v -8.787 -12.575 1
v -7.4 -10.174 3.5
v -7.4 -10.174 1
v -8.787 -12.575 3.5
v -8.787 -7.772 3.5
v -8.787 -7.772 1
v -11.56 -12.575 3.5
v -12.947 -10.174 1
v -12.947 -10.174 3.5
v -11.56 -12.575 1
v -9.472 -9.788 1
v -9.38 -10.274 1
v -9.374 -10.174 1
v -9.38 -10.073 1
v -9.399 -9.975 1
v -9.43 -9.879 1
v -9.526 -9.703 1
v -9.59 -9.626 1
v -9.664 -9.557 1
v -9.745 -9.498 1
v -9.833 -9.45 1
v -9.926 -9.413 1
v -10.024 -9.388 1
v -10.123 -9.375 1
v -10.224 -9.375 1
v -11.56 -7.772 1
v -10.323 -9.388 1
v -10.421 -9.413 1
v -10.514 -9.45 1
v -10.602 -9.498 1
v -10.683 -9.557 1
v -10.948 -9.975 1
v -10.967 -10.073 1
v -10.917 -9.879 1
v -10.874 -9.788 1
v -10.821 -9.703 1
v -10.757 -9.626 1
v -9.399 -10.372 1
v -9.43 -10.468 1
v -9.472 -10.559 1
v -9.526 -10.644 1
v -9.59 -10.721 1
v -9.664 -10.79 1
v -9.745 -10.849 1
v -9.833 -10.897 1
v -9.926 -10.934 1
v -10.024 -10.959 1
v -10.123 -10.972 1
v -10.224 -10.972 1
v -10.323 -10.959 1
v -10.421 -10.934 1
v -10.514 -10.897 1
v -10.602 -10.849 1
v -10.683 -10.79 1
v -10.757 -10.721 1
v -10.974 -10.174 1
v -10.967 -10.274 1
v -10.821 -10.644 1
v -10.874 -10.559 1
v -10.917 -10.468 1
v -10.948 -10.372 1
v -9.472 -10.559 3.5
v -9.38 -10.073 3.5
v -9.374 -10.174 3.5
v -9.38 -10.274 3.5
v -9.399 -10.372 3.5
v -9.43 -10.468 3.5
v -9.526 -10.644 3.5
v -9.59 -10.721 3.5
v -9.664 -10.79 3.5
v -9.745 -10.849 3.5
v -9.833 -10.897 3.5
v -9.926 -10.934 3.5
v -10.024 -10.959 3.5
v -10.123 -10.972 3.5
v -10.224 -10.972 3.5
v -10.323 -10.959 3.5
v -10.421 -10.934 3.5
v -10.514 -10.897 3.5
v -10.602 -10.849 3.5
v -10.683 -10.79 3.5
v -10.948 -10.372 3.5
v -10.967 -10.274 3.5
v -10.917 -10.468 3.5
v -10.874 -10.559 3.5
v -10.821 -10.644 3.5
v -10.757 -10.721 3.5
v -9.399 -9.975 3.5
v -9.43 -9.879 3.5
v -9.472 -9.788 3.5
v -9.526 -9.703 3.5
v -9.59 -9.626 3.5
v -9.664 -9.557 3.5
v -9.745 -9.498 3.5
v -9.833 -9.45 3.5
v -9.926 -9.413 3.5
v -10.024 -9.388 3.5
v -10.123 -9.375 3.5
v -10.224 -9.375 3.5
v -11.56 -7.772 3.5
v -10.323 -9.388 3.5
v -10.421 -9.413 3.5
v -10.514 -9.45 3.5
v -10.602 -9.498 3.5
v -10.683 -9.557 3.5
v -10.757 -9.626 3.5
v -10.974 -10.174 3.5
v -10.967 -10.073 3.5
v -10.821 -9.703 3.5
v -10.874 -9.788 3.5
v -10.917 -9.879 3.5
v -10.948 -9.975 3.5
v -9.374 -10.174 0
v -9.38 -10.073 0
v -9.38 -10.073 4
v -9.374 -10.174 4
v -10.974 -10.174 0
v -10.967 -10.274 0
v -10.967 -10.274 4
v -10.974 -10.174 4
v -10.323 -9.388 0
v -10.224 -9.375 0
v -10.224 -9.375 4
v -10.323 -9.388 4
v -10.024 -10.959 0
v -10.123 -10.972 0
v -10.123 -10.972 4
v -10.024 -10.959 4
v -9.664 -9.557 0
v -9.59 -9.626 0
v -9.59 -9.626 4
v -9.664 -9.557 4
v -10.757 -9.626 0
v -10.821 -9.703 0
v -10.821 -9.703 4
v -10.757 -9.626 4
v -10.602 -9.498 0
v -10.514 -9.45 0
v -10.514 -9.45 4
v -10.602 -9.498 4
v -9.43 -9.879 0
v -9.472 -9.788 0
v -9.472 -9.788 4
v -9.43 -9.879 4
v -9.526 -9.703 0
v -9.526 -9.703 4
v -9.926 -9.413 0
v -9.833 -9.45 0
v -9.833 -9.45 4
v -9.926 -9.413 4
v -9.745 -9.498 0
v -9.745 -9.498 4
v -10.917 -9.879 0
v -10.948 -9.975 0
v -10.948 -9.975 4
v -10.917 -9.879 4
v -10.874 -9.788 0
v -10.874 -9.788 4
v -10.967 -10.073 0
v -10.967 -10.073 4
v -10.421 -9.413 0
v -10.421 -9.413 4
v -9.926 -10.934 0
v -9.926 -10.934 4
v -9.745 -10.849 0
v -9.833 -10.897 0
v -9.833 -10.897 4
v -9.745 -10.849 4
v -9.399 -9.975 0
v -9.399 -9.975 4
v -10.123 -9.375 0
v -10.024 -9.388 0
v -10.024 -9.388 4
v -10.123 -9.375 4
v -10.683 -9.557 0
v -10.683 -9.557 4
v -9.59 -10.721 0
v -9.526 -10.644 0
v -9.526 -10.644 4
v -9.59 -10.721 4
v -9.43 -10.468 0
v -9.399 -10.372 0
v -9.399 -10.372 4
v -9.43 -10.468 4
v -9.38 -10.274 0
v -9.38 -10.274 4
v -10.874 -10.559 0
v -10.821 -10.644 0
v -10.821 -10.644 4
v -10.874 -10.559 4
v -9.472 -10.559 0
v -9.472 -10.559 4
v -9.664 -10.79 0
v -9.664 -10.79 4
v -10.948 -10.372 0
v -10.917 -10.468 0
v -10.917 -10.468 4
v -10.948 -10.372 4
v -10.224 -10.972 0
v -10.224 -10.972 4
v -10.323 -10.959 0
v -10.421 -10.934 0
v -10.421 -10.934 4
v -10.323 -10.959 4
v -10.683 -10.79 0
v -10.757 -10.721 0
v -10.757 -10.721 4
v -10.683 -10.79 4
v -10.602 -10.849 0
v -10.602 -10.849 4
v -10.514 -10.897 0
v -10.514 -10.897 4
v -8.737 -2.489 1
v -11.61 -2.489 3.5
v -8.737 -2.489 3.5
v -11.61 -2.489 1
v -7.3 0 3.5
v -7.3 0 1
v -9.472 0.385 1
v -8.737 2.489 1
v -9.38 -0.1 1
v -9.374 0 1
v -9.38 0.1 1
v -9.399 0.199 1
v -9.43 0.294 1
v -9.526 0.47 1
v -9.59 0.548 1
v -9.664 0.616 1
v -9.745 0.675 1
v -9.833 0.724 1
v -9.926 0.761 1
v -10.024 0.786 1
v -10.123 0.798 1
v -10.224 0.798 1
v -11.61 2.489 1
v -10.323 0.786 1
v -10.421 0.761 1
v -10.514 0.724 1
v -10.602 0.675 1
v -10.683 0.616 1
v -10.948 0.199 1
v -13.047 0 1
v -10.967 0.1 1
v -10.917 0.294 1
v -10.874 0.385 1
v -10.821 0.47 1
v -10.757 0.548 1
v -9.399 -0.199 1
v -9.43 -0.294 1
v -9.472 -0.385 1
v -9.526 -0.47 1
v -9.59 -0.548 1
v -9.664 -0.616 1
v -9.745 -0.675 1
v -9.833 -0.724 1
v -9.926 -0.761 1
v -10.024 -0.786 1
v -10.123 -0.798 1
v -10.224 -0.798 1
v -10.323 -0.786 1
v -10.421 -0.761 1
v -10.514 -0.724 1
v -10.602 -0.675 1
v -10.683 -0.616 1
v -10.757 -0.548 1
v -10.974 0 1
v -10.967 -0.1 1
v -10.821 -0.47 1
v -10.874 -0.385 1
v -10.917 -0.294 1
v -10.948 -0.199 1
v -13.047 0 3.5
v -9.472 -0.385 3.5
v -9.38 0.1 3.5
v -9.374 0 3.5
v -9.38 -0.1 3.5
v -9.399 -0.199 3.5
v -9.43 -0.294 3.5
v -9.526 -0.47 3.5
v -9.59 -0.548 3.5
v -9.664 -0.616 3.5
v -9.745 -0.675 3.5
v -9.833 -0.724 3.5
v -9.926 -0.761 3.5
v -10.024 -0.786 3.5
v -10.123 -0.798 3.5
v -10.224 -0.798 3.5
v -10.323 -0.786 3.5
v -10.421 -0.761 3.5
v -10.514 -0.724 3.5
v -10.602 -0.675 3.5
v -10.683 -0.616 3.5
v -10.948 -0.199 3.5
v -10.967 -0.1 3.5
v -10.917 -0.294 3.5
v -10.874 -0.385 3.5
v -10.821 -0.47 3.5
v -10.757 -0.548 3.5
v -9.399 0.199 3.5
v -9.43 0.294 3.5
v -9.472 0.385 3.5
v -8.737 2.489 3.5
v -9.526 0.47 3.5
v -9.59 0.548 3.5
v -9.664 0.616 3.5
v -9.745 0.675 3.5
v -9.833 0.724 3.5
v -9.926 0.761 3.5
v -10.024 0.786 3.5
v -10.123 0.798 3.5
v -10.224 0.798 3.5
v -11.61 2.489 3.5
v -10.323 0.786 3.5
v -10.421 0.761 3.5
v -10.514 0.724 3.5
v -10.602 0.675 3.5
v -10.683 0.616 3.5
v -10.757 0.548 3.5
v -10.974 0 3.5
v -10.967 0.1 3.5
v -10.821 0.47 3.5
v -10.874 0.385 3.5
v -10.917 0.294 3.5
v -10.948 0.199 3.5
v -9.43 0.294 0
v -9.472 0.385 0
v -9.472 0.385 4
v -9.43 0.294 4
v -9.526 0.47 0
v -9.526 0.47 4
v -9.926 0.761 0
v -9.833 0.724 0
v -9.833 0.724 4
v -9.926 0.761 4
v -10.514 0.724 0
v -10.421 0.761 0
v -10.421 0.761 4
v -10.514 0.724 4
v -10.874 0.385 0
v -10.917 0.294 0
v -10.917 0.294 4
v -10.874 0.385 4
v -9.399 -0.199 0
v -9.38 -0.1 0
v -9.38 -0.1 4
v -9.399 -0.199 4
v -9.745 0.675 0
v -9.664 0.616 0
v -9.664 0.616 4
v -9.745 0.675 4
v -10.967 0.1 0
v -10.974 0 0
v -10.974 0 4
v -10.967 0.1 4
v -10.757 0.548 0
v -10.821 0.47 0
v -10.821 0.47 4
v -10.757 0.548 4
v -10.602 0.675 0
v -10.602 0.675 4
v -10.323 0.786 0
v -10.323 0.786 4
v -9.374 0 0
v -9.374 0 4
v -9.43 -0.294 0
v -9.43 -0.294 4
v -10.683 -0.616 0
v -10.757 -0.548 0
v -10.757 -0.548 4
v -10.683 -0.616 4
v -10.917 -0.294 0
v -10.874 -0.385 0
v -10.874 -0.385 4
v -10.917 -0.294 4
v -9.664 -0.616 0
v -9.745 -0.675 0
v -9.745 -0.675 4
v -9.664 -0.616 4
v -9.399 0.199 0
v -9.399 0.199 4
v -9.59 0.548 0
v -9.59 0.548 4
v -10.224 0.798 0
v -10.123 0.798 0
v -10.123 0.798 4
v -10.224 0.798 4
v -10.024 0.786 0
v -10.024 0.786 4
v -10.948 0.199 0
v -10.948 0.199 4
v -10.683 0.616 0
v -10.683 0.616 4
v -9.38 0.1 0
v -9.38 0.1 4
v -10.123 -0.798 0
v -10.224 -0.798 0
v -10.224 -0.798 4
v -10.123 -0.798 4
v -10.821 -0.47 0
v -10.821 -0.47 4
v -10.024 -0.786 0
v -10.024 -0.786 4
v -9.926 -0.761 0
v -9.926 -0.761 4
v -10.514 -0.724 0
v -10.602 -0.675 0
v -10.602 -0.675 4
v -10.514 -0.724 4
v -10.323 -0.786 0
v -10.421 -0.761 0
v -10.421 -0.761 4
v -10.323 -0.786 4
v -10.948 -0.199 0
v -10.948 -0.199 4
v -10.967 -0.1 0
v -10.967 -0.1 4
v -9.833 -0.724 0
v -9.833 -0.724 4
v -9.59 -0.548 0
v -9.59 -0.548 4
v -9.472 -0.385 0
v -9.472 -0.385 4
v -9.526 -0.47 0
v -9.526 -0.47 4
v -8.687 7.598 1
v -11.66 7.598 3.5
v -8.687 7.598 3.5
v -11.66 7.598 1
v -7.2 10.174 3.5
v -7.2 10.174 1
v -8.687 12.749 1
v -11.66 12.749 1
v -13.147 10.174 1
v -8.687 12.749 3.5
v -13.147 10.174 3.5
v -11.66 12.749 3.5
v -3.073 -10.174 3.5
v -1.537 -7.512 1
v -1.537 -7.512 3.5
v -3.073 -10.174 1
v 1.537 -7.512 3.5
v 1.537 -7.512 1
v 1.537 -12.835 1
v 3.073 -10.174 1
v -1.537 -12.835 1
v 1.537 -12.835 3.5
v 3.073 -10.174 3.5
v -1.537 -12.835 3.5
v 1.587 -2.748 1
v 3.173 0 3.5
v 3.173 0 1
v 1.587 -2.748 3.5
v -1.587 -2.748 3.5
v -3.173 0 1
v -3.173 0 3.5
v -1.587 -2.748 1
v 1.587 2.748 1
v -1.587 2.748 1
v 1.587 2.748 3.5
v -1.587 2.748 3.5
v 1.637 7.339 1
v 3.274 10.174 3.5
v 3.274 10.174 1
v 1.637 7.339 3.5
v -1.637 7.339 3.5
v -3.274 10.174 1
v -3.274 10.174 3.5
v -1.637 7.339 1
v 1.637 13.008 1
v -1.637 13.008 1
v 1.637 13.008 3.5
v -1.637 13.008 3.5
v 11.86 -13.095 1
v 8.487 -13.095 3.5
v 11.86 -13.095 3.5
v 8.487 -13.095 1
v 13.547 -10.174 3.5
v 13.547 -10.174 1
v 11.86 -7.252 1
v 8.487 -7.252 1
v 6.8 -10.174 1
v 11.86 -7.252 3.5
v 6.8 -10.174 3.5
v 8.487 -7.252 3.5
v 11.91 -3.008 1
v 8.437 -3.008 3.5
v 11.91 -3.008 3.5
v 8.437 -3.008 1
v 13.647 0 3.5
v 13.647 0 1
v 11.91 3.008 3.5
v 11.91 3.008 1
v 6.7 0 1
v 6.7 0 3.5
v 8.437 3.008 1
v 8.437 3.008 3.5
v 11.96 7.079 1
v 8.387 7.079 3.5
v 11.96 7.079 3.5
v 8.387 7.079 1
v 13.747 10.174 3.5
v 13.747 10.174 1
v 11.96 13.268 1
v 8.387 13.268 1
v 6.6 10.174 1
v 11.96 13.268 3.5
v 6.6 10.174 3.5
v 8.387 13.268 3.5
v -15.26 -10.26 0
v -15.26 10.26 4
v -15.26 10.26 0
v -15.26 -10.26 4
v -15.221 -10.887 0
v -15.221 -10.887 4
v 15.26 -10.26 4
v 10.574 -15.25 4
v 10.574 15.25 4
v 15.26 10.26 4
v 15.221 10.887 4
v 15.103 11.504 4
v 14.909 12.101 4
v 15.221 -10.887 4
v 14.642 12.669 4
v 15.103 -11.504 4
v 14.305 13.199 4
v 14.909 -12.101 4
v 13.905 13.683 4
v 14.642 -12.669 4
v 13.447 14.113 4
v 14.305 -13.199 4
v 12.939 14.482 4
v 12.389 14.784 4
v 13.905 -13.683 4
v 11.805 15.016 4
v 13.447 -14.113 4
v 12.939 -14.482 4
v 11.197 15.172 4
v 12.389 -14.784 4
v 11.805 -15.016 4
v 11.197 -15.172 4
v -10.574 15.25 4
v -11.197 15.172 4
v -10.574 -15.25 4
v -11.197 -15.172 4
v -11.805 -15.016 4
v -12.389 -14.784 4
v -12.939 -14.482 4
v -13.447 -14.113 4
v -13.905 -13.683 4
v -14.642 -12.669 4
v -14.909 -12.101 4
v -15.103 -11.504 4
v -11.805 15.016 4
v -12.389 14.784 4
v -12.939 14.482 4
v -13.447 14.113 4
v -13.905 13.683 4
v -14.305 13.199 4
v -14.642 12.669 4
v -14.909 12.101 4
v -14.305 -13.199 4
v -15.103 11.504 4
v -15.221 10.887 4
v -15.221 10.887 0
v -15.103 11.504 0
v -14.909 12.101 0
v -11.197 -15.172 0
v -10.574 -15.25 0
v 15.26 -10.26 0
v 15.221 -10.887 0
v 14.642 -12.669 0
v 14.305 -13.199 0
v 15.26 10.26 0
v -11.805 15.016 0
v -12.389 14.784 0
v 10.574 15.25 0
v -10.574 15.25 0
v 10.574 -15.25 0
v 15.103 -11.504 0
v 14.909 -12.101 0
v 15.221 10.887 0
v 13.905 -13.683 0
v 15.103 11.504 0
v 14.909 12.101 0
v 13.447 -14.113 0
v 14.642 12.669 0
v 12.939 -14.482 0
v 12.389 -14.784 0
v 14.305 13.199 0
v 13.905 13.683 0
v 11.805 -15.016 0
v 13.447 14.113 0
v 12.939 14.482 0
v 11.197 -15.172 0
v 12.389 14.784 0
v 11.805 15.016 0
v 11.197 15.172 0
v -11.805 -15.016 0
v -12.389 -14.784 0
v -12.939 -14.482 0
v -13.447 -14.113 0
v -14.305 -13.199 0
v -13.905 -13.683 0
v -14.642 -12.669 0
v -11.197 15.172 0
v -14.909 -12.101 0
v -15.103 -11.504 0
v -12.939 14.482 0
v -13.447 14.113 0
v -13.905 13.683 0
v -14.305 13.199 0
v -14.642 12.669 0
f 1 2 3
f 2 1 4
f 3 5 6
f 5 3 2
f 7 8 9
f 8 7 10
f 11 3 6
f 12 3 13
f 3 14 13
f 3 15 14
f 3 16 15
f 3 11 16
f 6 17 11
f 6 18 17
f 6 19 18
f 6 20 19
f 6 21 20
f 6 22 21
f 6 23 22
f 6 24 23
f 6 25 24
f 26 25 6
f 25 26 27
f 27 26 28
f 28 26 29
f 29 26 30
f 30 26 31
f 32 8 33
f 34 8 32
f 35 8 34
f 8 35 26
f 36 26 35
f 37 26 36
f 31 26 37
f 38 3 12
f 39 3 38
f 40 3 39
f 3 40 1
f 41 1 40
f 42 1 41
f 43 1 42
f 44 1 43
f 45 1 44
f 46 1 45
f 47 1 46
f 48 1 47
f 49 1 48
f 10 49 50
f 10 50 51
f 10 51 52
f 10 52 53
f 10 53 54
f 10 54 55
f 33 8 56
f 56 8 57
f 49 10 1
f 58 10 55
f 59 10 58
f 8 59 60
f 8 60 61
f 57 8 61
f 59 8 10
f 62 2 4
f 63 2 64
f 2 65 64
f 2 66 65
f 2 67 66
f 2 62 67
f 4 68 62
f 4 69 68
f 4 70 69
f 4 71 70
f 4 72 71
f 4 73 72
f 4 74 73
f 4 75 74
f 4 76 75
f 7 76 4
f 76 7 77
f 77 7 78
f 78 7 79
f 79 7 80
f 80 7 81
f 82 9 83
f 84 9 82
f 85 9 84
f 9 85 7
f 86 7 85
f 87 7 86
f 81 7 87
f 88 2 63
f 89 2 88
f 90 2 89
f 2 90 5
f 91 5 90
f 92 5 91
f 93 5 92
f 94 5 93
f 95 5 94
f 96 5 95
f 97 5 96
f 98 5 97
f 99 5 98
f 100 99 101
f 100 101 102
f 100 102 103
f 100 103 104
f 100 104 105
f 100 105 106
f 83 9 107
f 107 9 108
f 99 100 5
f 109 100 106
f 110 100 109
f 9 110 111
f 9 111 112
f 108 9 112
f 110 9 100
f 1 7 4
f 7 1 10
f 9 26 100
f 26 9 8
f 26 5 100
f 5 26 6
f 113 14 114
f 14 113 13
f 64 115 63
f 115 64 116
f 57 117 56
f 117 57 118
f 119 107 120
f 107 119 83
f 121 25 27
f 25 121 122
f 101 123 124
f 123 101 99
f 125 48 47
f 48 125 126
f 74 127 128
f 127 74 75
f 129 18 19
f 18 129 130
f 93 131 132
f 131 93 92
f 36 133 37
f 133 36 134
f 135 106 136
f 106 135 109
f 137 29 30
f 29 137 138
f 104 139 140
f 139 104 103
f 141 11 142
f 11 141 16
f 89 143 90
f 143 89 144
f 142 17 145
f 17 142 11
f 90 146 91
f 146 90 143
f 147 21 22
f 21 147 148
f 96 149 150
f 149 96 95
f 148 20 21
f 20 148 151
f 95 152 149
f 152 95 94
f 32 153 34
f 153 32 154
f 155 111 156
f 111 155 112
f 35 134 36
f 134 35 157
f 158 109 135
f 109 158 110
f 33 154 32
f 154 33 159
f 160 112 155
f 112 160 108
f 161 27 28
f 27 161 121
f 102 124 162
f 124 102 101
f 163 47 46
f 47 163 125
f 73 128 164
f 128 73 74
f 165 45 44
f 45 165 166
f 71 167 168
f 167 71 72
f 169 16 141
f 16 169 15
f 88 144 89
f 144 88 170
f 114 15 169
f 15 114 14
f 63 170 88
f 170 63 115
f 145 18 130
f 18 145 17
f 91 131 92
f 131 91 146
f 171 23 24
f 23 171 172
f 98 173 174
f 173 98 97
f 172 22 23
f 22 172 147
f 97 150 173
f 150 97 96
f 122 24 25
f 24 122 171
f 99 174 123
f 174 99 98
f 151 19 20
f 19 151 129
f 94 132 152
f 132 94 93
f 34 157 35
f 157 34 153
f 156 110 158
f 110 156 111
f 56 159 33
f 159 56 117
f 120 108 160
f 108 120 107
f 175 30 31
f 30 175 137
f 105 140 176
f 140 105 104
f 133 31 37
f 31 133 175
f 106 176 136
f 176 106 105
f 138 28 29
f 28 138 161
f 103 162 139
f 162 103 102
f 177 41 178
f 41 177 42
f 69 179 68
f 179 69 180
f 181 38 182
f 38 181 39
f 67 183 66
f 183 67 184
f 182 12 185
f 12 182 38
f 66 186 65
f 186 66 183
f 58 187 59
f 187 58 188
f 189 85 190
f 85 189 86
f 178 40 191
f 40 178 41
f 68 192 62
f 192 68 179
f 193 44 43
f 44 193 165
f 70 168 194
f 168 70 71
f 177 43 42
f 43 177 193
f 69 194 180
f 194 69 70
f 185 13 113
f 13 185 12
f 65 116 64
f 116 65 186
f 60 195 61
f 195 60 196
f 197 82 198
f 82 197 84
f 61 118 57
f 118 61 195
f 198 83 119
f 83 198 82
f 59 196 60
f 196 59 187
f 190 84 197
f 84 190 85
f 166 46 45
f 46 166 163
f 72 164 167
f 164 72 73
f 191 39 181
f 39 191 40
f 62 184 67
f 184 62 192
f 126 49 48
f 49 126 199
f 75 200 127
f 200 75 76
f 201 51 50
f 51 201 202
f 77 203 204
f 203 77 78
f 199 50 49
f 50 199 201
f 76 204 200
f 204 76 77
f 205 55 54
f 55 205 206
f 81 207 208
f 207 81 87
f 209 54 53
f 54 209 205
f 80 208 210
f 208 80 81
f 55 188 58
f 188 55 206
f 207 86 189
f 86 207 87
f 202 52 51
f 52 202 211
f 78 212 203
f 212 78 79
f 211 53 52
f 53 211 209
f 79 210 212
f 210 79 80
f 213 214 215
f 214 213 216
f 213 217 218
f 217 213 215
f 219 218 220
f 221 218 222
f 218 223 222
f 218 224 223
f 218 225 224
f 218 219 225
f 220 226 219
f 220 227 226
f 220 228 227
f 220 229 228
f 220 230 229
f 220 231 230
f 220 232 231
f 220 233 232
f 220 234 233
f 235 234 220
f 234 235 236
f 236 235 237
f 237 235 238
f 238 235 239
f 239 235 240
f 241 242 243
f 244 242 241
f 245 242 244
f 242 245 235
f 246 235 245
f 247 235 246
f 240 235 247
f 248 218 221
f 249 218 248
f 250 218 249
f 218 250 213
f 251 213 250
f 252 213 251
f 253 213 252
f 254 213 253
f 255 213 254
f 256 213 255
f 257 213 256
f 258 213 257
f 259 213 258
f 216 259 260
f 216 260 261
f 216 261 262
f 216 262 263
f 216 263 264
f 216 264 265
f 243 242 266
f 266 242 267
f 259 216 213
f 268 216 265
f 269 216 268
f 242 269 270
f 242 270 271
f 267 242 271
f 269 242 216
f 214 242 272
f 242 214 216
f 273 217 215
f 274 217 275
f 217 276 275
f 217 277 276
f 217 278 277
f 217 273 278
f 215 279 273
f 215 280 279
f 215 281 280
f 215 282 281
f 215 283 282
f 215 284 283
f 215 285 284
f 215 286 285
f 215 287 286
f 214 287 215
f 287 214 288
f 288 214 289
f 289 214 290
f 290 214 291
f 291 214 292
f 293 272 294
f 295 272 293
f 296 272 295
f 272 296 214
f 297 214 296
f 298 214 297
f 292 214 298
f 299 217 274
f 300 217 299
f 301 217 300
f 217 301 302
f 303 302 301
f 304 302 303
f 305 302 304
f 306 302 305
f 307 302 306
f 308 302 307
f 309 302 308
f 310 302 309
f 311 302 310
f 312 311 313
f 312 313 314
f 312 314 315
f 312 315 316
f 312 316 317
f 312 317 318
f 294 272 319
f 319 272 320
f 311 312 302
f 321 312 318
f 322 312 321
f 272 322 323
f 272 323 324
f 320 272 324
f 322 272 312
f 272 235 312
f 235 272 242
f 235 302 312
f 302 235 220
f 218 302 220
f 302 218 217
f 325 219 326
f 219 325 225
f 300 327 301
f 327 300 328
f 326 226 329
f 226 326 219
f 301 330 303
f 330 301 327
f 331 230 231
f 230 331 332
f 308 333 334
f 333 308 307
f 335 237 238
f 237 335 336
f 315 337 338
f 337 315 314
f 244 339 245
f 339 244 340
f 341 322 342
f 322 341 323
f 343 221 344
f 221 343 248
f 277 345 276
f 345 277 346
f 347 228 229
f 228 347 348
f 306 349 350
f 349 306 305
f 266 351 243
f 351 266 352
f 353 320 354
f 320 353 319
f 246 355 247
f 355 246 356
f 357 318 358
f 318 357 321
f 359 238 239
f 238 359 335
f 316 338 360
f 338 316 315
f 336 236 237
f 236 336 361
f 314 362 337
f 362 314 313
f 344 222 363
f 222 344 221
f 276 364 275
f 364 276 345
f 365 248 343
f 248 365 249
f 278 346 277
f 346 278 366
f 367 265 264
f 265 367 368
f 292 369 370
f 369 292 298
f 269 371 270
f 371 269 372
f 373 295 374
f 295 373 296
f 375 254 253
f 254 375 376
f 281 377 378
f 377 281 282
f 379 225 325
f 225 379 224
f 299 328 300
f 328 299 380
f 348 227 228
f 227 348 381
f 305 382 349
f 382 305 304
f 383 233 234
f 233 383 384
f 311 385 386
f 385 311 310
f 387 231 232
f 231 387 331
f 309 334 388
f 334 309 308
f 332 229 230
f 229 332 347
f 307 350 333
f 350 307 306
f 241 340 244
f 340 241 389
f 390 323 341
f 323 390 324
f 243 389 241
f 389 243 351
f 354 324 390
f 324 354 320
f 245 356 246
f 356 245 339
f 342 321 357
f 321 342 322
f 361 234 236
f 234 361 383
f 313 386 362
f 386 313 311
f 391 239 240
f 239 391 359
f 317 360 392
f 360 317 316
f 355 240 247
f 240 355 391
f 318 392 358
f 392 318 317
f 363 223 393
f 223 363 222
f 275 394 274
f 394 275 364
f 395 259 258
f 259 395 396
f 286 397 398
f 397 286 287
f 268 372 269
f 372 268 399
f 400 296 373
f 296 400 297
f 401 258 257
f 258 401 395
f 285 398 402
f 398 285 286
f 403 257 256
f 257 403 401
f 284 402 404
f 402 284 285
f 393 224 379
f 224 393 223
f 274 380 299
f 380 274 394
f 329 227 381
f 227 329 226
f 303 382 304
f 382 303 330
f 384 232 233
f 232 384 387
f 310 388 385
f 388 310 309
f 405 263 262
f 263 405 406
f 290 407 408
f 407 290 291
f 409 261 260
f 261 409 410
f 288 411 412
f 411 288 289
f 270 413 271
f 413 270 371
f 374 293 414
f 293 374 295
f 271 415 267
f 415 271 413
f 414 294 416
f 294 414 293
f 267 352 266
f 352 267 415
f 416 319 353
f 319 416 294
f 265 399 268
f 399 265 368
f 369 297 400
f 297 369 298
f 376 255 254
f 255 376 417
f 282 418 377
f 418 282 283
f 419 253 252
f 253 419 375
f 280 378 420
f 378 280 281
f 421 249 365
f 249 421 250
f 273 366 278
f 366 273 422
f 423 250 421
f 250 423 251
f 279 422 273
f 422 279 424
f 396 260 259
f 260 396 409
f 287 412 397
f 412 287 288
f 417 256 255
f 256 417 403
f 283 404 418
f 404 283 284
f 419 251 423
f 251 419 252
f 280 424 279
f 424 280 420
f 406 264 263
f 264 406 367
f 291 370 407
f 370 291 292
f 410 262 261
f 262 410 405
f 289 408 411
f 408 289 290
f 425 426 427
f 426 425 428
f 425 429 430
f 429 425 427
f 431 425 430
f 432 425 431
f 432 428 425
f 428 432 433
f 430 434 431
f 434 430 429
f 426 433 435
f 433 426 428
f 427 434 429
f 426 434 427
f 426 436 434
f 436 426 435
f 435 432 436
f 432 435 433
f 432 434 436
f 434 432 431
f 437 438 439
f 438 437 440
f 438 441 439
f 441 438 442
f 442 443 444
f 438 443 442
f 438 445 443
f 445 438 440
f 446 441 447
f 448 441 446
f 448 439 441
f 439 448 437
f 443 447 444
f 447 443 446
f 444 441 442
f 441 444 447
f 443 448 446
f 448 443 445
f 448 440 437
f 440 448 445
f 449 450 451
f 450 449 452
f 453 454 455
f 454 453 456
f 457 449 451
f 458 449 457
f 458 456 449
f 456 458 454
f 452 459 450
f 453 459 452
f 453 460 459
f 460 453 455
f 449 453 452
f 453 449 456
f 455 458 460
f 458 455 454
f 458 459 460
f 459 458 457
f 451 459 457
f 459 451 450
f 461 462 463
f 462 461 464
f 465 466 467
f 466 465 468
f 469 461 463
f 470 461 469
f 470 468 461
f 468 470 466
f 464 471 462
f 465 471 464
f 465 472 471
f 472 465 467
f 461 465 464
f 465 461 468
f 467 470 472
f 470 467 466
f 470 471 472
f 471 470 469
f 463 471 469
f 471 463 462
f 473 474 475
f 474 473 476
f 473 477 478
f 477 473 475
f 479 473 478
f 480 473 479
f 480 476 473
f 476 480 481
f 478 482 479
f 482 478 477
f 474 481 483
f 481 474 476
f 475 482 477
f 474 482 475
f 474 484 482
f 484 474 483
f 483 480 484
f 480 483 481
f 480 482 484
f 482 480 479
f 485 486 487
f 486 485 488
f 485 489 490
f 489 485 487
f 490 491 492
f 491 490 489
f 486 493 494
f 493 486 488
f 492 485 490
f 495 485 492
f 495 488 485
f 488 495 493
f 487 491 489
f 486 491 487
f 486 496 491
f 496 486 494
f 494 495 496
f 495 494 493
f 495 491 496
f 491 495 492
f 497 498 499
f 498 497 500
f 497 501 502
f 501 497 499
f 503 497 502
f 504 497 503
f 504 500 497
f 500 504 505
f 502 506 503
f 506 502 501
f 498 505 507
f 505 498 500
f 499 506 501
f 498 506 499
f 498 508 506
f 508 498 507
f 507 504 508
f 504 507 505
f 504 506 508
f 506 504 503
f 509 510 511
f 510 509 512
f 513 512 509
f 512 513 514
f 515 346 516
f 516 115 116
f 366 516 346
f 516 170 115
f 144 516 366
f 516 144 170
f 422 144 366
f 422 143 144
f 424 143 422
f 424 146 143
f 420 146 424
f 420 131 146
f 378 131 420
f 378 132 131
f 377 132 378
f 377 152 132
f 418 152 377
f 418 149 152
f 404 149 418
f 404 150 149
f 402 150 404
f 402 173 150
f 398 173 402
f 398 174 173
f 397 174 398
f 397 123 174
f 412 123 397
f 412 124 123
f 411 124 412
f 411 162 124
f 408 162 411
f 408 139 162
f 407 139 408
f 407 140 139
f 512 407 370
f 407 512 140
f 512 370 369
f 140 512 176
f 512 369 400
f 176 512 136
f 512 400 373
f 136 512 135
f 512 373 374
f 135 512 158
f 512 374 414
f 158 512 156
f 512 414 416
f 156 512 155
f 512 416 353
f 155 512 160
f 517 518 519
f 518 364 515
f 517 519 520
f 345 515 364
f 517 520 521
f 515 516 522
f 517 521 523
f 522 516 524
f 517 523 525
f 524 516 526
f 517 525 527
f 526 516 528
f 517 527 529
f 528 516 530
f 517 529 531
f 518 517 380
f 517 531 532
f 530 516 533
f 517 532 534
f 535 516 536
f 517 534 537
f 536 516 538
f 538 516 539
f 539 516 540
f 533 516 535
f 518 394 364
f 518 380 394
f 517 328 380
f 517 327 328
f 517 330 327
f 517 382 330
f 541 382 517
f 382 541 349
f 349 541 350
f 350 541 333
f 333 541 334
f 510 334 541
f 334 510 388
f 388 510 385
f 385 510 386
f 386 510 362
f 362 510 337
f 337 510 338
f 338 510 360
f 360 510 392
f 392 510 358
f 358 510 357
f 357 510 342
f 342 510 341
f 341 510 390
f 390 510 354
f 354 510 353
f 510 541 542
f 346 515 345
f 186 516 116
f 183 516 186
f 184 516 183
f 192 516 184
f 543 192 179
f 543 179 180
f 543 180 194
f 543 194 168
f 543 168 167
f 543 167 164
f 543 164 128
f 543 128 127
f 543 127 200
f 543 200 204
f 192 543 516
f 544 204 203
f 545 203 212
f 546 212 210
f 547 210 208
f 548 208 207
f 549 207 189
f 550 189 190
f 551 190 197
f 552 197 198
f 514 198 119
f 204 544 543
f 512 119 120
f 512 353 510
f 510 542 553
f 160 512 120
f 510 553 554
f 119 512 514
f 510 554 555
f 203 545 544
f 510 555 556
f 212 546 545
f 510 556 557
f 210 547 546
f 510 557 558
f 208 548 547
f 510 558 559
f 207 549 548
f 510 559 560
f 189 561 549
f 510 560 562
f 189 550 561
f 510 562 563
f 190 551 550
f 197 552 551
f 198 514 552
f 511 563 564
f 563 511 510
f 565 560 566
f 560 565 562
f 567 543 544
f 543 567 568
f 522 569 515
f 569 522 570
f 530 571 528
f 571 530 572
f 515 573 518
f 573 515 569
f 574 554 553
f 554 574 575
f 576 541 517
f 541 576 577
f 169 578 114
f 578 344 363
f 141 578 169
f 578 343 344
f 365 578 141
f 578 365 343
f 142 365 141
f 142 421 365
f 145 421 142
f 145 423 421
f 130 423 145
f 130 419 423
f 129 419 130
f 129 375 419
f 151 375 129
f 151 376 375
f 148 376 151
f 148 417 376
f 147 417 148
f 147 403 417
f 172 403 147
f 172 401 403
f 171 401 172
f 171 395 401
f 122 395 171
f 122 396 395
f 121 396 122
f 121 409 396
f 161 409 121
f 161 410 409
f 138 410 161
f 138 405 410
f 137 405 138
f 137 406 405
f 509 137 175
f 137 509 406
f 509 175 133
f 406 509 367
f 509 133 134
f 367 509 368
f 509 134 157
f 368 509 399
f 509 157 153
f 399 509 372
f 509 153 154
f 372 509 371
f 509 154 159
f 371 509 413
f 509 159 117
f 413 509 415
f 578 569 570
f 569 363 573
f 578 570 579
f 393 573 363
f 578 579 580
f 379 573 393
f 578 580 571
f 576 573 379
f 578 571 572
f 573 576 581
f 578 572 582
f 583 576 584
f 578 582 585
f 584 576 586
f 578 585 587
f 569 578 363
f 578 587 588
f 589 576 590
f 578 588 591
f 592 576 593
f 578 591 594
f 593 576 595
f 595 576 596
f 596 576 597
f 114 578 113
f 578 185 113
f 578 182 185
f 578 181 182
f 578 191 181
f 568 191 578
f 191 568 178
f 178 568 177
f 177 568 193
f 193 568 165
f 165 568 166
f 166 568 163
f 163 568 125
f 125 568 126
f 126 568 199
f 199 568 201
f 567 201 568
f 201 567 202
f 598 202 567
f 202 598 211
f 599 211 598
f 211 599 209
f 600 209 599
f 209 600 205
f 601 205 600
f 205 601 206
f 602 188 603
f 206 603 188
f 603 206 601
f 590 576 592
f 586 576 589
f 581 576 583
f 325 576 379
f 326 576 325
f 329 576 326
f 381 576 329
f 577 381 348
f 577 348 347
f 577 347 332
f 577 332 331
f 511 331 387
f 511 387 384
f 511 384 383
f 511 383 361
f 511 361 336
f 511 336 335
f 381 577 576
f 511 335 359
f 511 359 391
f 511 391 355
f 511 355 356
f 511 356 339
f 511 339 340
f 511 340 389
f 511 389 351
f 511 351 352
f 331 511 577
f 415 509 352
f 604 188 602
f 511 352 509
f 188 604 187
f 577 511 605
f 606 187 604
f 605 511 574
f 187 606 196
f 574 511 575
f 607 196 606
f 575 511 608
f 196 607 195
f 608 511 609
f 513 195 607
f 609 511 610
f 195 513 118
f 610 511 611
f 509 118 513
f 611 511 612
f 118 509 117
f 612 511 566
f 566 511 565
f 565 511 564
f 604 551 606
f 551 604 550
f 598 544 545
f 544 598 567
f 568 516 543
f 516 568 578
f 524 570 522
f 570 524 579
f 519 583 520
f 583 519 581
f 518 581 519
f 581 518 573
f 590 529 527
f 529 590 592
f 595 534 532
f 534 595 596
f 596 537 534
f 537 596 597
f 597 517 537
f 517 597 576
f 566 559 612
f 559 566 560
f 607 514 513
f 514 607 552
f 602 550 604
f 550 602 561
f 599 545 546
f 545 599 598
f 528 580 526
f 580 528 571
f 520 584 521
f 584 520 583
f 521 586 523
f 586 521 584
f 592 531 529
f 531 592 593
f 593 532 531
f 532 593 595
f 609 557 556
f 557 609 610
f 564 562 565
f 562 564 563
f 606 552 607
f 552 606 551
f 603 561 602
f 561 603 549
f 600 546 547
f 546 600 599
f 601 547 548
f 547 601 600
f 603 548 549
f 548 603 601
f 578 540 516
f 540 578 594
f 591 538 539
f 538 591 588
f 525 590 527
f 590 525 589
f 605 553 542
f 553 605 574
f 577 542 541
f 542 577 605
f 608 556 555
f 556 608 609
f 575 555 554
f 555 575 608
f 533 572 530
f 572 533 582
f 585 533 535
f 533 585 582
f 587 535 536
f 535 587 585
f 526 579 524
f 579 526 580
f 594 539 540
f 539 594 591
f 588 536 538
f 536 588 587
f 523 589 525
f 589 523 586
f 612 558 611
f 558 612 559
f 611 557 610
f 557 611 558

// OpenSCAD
$fn = 50;


difference() {
	union() {
		translate(v = [0, 0, 0]) {
			rotate(a = [0, 0, 0]) {
				hull() {
					translate(v = [-10.2602500000, 10.2602500000, 0]) {
						rotate(a = [0, 0, 0]) {
							translate(v = [0, 0, 0]) {
								rotate(a = [0, 0, 0]) {
									cylinder(h = 4, r = 5);
								}
							}
						}
					}
					translate(v = [10.2602500000, 10.2602500000, 0]) {
						rotate(a = [0, 0, 0]) {
							translate(v = [0, 0, 0]) {
								rotate(a = [0, 0, 0]) {
									cylinder(h = 4, r = 5);
								}
							}
						}
					}
					translate(v = [-10.2602500000, -10.2602500000, 0]) {
						rotate(a = [0, 0, 0]) {
							translate(v = [0, 0, 0]) {
								rotate(a = [0, 0, 0]) {
									cylinder(h = 4, r = 5);
								}
							}
						}
					}
					translate(v = [10.2602500000, -10.2602500000, 0]) {
						rotate(a = [0, 0, 0]) {
							translate(v = [0, 0, 0]) {
								rotate(a = [0, 0, 0]) {
									cylinder(h = 4, r = 5);
								}
							}
						}
					}
				}
			}
		}
	}
	union() {
		translate(v = [-10.1735000000, -10.1735000000, 1]) {
			rotate(a = [0, 0, 0]) {
				translate(v = [0, 0, 0]) {
					rotate(a = [0, 0, 0]) {
						linear_extrude(height = 2.5000000000) {
							polygon(points = [[2.7735000000, 0.0000000000], [1.3867500000, 2.4019214574], [-1.3867500000, 2.4019214574], [-2.7735000000, 0.0000000000], [-1.3867500000, -2.4019214574], [1.3867500000, -2.4019214574]]);
						}
					}
				}
			}
		}
		translate(v = [-10.1735000000, -10.1735000000, -125]) {
			rotate(a = [0, 0, 0]) {
				cylinder(h = 250, r = 0.8000000000);
			}
		}
		translate(v = [-10.1735000000, 0.0000000000, 1]) {
			rotate(a = [0, 0, 0]) {
				translate(v = [0, 0, 0]) {
					rotate(a = [0, 0, 0]) {
						linear_extrude(height = 2.5000000000) {
							polygon(points = [[2.8735000000, 0.0000000000], [1.4367500000, 2.4885239978], [-1.4367500000, 2.4885239978], [-2.8735000000, 0.0000000000], [-1.4367500000, -2.4885239978], [1.4367500000, -2.4885239978]]);
						}
					}
				}
			}
		}
		translate(v = [-10.1735000000, 0.0000000000, -125]) {
			rotate(a = [0, 0, 0]) {
				cylinder(h = 250, r = 0.8000000000);
			}
		}
		translate(v = [-10.1735000000, 10.1735000000, 1]) {
			rotate(a = [0, 0, 0]) {
				translate(v = [0, 0, 0]) {
					rotate(a = [0, 0, 0]) {
						linear_extrude(height = 2.5000000000) {
							polygon(points = [[2.9735000000, 0.0000000000], [1.4867500000, 2.5751265382], [-1.4867500000, 2.5751265382], [-2.9735000000, 0.0000000000], [-1.4867500000, -2.5751265382], [1.4867500000, -2.5751265382]]);
						}
					}
				}
			}
		}
		translate(v = [0.0000000000, -10.1735000000, 1]) {
			rotate(a = [0, 0, 0]) {
				translate(v = [0, 0, 0]) {
					rotate(a = [0, 0, 0]) {
						linear_extrude(height = 2.5000000000) {
							polygon(points = [[3.0735000000, 0.0000000000], [1.5367500000, 2.6617290785], [-1.5367500000, 2.6617290785], [-3.0735000000, 0.0000000000], [-1.5367500000, -2.6617290785], [1.5367500000, -2.6617290785]]);
						}
					}
				}
			}
		}
		translate(v = [0.0000000000, 0.0000000000, 1]) {
			rotate(a = [0, 0, 0]) {
				translate(v = [0, 0, 0]) {
					rotate(a = [0, 0, 0]) {
						linear_extrude(height = 2.5000000000) {
							polygon(points = [[3.1735000000, 0.0000000000], [1.5867500000, 2.7483316189], [-1.5867500000, 2.7483316189], [-3.1735000000, 0.0000000000], [-1.5867500000, -2.7483316189], [1.5867500000, -2.7483316189]]);
						}
					}
				}
			}
		}
		translate(v = [0.0000000000, 10.1735000000, 1]) {
			rotate(a = [0, 0, 0]) {
				translate(v = [0, 0, 0]) {
					rotate(a = [0, 0, 0]) {
						linear_extrude(height = 2.5000000000) {
							polygon(points = [[3.2735000000, 0.0000000000], [1.6367500000, 2.8349341593], [-1.6367500000, 2.8349341593], [-3.2735000000, 0.0000000000], [-1.6367500000, -2.8349341593], [1.6367500000, -2.8349341593]]);
						}
					}
				}
			}
		}
		translate(v = [10.1735000000, -10.1735000000, 1]) {
			rotate(a = [0, 0, 0]) {
				translate(v = [0, 0, 0]) {
					rotate(a = [0, 0, 0]) {
						linear_extrude(height = 2.5000000000) {
							polygon(points = [[3.3735000000, 0.0000000000], [1.6867500000, 2.9215366997], [-1.6867500000, 2.9215366997], [-3.3735000000, 0.0000000000], [-1.6867500000, -2.9215366997], [1.6867500000, -2.9215366997]]);
						}
					}
				}
			}
		}
		translate(v = [10.1735000000, 0.0000000000, 1]) {
			rotate(a = [0, 0, 0]) {
				translate(v = [0, 0, 0]) {
					rotate(a = [0, 0, 0]) {
						linear_extrude(height = 2.5000000000) {
							polygon(points = [[3.4735000000, 0.0000000000], [1.7367500000, 3.0081392400], [-1.7367500000, 3.0081392400], [-3.4735000000, 0.0000000000], [-1.7367500000, -3.0081392400], [1.7367500000, -3.0081392400]]);
						}
					}
				}
			}
		}
		translate(v = [10.1735000000, 10.1735000000, 1]) {
			rotate(a = [0, 0, 0]) {
				translate(v = [0, 0, 0]) {
					rotate(a = [0, 0, 0]) {
						linear_extrude(height = 2.5000000000) {
							polygon(points = [[3.5735000000, 0.0000000000], [1.7867500000, 3.0947417804], [-1.7867500000, 3.0947417804], [-3.5735000000, 0.0000000000], [-1.7867500000, -3.0947417804], [1.7867500000, -3.0947417804]]);
						}
					}
				}
			}
		}
	}
}
